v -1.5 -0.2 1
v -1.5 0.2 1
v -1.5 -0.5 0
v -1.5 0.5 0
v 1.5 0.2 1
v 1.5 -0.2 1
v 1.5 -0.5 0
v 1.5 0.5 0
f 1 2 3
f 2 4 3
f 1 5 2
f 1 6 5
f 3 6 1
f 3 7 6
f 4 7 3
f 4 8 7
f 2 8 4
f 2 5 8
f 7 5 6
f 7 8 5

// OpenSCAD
// Trapezium Prism (Isosceles) for Stacks of Shapes
// by Slashee the Cow

points = [
    [0,0],
    [0.3,1],
    [0.7,1],
    [1,0]
    ];

color("Goldenrod")
translate([-1.5,-0.5,0])
rotate([90,0,90])
linear_extrude(3)
polygon(points, [[0,1,2,3]]);
